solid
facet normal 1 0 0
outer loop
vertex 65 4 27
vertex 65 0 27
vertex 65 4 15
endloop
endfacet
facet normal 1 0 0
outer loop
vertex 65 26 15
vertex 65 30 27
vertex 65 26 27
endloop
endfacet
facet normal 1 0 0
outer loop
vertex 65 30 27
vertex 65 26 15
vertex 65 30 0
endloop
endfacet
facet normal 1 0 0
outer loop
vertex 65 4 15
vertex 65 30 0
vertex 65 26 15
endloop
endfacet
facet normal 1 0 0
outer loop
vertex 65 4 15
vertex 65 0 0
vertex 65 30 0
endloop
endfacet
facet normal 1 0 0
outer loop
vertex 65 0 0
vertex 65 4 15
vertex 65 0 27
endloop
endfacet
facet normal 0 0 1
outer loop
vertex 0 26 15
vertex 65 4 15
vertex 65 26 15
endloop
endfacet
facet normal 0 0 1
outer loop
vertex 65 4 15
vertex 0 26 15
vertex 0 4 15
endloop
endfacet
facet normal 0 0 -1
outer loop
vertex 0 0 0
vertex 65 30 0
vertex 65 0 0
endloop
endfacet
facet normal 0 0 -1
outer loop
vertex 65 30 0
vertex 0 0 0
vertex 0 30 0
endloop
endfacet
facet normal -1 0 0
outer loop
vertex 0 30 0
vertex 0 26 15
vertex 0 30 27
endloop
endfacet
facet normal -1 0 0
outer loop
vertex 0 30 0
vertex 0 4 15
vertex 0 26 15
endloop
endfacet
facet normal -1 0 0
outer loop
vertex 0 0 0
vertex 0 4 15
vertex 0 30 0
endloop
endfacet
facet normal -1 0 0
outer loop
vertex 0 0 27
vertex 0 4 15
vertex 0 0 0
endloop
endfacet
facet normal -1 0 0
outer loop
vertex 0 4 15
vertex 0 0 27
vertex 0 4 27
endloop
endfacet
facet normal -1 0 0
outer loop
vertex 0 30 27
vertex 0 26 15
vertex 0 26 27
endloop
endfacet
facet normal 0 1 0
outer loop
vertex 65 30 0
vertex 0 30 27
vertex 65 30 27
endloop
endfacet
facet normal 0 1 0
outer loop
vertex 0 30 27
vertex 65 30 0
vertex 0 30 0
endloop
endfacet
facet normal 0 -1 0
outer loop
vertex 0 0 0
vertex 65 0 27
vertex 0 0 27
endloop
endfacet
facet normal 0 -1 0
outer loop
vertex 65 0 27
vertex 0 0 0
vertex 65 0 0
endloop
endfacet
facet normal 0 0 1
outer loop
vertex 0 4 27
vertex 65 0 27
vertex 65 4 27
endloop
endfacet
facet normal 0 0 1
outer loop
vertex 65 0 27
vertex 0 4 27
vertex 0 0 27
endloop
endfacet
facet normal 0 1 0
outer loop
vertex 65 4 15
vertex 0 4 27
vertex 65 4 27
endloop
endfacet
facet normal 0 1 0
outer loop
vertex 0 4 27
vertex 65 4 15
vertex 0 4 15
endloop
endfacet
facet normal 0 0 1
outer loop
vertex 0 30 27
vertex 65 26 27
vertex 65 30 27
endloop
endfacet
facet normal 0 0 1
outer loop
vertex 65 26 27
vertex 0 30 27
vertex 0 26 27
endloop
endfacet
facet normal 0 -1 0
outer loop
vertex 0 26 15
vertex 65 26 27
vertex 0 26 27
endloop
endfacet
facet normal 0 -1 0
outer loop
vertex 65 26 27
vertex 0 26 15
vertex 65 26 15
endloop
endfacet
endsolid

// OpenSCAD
// Dimensions
base_length = 65;  // Increased length of the base block to match the original model
base_width = 30;   // Width of the base block remains the same
base_height = 15;  // Height of the base block remains the same

side_wall_thickness = 4;  // Reduced thickness of the side walls to match the original model
side_wall_height = 12;    // Increased height of the side walls to match the original model

slot_width = base_width - 2 * side_wall_thickness;  // Adjusted width of the central slot
slot_depth = 12;  // Increased depth of the central slot to match the original model

// Base block with sharper edges
module base_block() {
    cube([base_length, base_width, base_height]);
}

// Side walls with sharper top edges
module side_wall() {
    cube([base_length, side_wall_thickness, side_wall_height]);
}

// Central slot with a flatter bottom profile
module central_slot() {
    translate([0, side_wall_thickness, 0])
        cube([base_length, slot_width, slot_depth]);
}

// Assembling the model
module flexible_coupling() {
    // Base block
    base_block();

    // Side walls
    translate([0, 0, base_height])
        side_wall();
    translate([0, base_width - side_wall_thickness, base_height])
        side_wall();

    // Central slot
    translate([0, 0, base_height - slot_depth])
        central_slot();
}

// Render the model
flexible_coupling();
